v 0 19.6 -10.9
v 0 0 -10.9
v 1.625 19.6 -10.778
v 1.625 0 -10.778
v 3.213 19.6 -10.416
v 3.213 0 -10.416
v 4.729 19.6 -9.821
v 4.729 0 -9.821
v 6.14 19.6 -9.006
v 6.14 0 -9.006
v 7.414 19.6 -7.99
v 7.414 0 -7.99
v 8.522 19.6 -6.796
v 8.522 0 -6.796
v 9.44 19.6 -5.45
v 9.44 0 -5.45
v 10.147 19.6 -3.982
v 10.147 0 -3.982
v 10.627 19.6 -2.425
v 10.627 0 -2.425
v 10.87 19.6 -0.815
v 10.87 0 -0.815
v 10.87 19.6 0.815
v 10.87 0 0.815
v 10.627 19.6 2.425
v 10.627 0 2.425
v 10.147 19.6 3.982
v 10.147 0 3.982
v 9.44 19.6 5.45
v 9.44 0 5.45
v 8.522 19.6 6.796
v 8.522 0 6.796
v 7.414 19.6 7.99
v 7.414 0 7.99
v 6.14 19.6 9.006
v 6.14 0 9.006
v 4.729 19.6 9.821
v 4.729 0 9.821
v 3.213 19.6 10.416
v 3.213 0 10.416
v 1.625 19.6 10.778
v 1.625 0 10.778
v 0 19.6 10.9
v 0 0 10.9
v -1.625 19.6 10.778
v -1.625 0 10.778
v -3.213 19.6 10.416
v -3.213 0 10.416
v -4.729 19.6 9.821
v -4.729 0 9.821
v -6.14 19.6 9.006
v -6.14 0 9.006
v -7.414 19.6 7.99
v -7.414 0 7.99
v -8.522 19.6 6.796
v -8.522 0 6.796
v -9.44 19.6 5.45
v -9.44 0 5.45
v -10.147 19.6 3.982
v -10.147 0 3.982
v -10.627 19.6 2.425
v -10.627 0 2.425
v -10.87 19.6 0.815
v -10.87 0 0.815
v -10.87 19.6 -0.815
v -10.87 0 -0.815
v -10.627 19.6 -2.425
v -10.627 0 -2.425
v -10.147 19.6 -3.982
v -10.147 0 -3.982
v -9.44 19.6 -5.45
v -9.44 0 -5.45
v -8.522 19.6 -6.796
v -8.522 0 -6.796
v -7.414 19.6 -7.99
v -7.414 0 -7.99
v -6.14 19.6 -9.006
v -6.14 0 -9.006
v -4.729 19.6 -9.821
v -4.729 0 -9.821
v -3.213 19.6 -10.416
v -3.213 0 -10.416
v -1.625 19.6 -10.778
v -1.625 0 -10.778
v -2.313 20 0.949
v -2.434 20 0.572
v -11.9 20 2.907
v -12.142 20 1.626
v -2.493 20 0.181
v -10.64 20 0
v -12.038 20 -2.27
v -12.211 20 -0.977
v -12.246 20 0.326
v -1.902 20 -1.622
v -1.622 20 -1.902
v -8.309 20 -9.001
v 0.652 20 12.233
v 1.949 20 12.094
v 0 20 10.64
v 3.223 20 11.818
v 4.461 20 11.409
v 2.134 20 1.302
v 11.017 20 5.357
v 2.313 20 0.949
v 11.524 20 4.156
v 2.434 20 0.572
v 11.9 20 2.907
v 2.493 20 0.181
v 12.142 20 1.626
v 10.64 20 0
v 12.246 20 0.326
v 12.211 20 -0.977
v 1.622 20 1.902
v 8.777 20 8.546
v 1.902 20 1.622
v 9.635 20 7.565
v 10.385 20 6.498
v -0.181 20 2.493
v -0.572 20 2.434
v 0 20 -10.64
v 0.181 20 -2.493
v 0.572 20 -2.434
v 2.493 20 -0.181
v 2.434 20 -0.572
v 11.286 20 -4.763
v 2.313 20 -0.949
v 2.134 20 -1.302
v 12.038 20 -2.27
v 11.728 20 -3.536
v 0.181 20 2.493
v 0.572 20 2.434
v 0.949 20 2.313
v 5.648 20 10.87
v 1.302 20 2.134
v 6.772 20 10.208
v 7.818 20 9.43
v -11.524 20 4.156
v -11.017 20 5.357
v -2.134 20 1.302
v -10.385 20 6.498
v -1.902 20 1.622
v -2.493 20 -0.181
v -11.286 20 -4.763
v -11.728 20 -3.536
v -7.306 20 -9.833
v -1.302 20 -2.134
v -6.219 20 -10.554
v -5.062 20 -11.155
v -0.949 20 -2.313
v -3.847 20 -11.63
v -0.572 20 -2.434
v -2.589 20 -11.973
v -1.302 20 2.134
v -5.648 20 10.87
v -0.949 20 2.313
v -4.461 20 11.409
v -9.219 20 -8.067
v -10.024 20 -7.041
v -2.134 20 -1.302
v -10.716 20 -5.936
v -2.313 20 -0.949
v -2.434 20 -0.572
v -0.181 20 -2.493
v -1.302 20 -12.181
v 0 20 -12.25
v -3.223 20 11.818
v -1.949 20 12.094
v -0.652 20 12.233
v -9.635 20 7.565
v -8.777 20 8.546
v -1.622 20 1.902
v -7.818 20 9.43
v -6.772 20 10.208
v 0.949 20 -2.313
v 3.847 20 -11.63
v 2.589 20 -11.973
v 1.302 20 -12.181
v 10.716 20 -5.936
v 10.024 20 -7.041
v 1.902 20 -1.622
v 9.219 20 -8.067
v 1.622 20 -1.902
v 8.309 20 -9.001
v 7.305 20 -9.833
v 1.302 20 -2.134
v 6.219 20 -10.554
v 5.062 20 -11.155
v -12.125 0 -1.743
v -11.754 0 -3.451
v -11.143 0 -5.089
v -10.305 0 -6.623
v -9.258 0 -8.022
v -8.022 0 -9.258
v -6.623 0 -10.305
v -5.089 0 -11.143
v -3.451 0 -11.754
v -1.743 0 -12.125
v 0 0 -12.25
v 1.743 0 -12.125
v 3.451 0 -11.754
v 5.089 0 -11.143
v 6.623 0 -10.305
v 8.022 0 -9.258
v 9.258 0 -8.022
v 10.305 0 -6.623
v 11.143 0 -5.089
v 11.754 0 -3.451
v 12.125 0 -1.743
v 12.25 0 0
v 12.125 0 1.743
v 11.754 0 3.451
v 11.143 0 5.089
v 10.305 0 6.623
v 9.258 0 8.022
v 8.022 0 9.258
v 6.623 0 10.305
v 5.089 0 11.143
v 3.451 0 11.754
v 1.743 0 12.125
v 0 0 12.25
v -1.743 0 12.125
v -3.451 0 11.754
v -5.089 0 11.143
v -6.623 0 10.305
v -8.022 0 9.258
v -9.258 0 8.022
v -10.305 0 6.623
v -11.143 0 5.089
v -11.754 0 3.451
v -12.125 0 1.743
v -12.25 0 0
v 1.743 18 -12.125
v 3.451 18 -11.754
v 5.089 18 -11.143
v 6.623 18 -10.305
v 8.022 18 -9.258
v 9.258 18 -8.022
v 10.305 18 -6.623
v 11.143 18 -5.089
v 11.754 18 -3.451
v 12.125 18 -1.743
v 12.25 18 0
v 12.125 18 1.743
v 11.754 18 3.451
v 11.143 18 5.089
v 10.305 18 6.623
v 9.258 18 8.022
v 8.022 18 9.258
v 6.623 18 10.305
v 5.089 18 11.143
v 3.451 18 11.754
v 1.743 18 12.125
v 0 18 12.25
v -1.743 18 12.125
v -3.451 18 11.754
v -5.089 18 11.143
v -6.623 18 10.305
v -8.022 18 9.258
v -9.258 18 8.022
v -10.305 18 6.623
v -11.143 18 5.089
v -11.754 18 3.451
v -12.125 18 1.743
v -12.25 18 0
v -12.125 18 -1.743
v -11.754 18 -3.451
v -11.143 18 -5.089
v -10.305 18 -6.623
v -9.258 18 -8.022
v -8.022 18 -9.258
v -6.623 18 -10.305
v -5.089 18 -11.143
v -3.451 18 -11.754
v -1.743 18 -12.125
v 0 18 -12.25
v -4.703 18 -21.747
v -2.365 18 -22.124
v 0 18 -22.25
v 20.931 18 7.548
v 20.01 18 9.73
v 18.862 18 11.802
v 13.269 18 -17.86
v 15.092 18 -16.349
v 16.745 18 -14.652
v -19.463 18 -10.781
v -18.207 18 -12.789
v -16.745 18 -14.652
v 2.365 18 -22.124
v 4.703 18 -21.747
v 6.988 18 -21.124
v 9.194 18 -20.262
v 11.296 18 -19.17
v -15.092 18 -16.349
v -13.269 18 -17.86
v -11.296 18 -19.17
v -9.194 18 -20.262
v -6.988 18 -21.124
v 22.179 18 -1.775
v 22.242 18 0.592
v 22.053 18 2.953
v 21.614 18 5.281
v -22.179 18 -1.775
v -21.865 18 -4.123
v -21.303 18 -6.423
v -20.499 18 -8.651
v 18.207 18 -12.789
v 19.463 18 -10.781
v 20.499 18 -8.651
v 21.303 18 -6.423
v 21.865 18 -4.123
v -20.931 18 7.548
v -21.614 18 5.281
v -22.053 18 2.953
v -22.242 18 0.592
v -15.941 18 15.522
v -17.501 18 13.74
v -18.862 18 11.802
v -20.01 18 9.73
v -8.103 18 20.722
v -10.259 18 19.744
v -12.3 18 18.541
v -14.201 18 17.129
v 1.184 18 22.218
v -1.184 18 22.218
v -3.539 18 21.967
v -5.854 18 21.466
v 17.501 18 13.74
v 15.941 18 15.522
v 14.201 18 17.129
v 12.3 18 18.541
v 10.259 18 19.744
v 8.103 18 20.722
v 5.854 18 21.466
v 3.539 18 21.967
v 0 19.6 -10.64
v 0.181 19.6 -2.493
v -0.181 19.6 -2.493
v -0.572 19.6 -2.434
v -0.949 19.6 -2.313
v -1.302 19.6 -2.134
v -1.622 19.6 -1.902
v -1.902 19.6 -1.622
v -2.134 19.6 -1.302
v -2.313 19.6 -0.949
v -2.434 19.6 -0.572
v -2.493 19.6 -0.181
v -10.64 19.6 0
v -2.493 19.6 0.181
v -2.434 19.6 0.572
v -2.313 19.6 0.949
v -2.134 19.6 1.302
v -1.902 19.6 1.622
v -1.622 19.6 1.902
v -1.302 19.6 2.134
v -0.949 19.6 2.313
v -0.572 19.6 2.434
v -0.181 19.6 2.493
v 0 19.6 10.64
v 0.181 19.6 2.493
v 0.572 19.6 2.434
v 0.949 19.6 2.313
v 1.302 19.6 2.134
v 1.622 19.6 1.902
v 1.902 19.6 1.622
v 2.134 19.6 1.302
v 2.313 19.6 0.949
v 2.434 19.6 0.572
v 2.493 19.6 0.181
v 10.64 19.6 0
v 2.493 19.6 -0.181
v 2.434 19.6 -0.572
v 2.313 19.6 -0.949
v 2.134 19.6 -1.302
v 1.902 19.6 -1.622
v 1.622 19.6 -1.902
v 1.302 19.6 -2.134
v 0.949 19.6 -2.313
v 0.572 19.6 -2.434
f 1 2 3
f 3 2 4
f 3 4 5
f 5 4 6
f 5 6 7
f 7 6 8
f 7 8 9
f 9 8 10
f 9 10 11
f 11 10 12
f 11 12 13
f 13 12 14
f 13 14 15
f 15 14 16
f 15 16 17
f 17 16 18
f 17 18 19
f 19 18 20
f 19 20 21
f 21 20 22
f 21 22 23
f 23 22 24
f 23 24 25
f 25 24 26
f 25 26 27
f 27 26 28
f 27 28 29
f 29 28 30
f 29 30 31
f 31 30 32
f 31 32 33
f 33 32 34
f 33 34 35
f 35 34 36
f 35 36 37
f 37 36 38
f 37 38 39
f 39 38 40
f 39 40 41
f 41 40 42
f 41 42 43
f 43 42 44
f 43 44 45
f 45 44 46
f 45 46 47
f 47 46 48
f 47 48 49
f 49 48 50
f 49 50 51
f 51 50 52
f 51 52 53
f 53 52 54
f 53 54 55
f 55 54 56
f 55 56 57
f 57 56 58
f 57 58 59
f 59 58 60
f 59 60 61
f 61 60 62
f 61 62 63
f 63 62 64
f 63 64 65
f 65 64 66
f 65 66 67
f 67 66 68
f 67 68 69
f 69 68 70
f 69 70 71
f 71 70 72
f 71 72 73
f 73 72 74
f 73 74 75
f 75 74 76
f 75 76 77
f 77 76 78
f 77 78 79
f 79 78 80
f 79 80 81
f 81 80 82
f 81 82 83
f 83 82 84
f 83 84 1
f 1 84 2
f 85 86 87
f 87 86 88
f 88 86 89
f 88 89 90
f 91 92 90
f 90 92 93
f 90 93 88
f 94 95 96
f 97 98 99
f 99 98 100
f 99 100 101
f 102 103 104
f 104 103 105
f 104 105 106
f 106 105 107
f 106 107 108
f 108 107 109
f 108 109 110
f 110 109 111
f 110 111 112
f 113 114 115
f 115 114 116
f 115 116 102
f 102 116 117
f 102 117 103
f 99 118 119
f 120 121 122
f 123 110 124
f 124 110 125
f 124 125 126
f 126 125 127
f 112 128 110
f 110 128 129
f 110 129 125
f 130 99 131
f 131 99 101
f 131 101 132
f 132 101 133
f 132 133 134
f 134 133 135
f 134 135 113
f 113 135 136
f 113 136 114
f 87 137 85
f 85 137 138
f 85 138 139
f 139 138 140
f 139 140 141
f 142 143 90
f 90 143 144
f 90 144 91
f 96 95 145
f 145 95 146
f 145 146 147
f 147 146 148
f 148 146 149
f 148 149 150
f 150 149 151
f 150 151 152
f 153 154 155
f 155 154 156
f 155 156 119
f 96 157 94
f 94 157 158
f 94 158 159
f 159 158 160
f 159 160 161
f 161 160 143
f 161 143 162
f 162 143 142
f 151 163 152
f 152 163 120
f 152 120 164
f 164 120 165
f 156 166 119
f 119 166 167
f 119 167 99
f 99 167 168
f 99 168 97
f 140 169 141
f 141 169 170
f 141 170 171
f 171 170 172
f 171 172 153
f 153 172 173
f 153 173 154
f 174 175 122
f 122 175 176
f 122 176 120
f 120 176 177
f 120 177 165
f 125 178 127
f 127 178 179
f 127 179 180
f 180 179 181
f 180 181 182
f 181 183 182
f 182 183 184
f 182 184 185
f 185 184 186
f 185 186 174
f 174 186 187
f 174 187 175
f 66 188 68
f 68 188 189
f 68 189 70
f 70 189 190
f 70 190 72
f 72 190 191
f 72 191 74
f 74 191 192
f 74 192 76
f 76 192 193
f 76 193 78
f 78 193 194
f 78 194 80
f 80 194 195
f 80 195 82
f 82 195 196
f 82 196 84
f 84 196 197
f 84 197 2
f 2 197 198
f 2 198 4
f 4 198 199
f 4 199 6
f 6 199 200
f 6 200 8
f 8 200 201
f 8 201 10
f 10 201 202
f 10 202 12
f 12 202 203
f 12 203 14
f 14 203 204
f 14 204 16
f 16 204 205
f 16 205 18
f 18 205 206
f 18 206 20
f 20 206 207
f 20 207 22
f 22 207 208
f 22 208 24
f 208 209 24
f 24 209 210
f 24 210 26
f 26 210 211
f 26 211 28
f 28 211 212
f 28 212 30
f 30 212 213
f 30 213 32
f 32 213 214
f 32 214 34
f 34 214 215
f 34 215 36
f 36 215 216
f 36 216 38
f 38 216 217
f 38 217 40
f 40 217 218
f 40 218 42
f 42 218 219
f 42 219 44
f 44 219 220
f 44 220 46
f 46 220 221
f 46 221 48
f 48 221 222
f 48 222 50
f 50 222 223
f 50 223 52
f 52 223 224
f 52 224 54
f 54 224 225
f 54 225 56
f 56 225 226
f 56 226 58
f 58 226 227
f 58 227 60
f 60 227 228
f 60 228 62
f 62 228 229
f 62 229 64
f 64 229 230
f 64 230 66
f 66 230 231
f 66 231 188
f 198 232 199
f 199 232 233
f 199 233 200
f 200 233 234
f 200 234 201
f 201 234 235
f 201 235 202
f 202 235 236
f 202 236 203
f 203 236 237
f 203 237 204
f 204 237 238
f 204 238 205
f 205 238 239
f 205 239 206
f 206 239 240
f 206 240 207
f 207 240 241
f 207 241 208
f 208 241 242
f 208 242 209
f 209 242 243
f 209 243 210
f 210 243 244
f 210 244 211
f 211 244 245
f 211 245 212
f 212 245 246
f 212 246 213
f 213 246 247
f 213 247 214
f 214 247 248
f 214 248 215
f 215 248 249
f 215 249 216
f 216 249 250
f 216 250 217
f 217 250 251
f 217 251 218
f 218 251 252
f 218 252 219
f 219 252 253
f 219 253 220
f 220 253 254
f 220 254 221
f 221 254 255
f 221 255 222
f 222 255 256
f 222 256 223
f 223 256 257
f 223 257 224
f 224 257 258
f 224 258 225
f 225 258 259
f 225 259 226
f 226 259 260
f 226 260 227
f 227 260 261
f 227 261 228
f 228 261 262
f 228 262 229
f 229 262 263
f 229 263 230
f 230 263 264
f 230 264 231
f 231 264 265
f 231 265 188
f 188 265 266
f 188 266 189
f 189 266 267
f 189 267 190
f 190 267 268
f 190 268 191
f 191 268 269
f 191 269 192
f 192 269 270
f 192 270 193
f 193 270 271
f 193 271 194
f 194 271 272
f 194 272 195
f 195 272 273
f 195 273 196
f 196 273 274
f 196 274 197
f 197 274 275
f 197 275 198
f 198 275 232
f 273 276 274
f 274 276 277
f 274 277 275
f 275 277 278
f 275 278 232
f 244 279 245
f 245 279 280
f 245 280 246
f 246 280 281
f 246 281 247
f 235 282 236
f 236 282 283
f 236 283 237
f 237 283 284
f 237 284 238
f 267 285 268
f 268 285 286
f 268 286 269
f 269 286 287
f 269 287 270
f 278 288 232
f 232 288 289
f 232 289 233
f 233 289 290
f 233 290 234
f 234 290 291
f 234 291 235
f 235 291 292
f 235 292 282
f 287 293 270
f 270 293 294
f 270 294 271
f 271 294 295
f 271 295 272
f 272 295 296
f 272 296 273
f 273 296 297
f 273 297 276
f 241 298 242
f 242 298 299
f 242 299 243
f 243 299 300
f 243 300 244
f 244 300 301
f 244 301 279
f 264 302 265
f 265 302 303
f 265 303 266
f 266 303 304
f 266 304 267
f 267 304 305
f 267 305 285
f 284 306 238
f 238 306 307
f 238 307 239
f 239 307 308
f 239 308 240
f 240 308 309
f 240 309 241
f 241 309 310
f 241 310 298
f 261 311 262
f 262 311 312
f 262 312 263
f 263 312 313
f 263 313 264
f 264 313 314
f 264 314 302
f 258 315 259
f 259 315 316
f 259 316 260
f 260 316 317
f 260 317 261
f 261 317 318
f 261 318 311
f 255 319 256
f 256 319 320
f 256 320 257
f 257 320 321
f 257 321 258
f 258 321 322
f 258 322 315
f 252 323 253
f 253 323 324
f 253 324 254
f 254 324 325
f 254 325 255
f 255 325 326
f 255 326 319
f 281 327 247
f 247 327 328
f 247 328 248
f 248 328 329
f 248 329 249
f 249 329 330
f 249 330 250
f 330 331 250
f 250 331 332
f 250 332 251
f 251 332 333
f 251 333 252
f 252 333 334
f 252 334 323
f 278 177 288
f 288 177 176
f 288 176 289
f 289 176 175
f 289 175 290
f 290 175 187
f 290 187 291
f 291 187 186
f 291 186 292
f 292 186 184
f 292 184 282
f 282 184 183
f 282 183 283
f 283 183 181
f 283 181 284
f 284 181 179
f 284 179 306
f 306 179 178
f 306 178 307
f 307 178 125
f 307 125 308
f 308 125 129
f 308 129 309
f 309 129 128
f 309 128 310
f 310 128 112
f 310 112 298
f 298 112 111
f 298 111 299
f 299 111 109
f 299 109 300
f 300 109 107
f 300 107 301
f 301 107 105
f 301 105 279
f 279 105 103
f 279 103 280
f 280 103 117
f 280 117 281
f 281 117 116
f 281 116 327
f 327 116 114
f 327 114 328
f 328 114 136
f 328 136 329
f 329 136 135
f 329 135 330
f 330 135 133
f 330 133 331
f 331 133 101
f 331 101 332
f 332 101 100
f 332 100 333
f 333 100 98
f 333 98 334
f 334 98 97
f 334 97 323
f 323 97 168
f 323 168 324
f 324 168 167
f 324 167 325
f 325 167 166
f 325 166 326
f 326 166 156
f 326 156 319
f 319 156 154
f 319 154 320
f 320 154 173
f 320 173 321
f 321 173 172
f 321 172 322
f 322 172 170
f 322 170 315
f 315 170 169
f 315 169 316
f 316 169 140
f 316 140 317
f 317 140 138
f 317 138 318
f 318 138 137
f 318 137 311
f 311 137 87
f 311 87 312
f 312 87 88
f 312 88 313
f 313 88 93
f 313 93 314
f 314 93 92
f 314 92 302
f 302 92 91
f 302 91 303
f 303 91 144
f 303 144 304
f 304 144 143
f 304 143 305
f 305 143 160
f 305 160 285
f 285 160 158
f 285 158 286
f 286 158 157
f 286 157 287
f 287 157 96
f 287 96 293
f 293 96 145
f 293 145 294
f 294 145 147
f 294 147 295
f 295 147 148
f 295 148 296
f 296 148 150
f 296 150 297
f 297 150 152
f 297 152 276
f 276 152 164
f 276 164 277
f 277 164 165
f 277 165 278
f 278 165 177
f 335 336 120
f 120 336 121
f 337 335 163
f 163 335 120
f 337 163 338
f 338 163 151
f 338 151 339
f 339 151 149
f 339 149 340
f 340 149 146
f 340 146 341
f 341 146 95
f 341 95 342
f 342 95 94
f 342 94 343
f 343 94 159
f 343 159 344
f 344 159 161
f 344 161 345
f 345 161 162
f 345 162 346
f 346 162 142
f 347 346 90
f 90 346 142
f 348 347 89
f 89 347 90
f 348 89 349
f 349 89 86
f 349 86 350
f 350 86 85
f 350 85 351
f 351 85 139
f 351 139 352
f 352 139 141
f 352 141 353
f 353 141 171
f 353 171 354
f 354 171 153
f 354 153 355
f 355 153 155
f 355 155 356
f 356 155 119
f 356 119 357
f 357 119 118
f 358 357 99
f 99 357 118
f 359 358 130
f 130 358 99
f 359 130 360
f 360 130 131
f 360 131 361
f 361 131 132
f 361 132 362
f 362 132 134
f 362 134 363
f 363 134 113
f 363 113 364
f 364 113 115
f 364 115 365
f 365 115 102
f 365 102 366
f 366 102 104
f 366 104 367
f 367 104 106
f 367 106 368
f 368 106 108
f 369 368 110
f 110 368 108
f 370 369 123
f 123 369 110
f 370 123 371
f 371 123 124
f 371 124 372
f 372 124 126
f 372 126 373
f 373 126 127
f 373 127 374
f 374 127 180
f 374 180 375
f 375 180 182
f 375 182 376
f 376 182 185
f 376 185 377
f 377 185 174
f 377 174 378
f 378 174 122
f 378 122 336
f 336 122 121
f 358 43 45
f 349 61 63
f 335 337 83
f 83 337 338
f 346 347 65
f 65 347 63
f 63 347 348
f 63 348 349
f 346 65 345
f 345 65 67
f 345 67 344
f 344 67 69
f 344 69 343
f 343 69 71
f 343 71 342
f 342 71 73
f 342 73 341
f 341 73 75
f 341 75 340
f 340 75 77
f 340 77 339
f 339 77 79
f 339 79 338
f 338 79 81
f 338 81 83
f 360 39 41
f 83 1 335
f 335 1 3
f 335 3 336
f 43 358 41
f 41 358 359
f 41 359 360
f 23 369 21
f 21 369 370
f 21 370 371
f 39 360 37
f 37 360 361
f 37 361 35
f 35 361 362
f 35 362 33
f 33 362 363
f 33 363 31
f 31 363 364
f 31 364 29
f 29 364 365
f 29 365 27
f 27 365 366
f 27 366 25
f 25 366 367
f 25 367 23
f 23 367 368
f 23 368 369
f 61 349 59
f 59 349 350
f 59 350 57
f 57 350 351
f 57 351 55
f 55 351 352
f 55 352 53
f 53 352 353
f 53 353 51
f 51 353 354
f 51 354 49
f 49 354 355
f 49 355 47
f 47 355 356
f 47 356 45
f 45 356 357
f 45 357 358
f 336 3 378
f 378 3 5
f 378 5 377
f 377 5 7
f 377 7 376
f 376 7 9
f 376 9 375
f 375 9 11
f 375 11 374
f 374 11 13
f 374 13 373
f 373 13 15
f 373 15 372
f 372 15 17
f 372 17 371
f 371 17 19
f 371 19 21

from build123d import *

# Parameters (mm, degrees)
SALIENTE_EXTRUIR2_DEPTH = 0.4


with BuildPart() as part:
    # Croquis1 → Revolución1 (revolve)
    with BuildSketch(Plane.XY):
        Polygon((-10.9, 20), (-10.9, 0), (-12.25, 0), (-12.25, 18), (-22.25, 18), (-12.25, 20), align=None)
    revolve(axis=Axis((0, 0, 0), (0, 1, 0)))

    # Croquis3 → Saliente-Extruir2 (add)
    with BuildSketch(Plane(origin=(0, 20, 0), x_dir=(1, 0, 0), z_dir=(0, 1, 0))):
        with BuildLine():
            ThreePointArc((10.9, 0), (7.707463915, -7.707463915), (0, -10.9))
            ThreePointArc((0, -10.9), (-7.707463915, -7.707463915), (-10.9, 0))
            ThreePointArc((-10.9, 0), (-7.707463915, 7.707463915), (0, 10.9))
            ThreePointArc((0, 10.9), (7.707463915, 7.707463915), (10.9, 0))
        make_face()
        with BuildLine():
            Line((0.181294315, -2.493417809), (0, -10.639817501))
            Line((0, -10.639817501), (-0.181294315, -2.493417809))
            ThreePointArc((-0.181294315, -2.493417809), (-1.767766953, -1.767766953), (-2.493417809, -0.181294315))
            Line((-2.493417809, -0.181294315), (-10.639817501, 0))
            Line((-10.639817501, 0), (-2.493417809, 0.181294315))
            ThreePointArc((-2.493417809, 0.181294315), (-1.767766953, 1.767766953), (-0.181294315, 2.493417809))
            Line((-0.181294315, 2.493417809), (0, 10.639817501))
            Line((0, 10.639817501), (0.181294315, 2.493417809))
            ThreePointArc((0.181294315, 2.493417809), (1.767766953, 1.767766953), (2.493417809, 0.181294315))
            Line((2.493417809, 0.181294315), (10.639817501, 0))
            Line((10.639817501, 0), (2.493417809, -0.181294315))
            ThreePointArc((2.493417809, -0.181294315), (1.767766953, -1.767766953), (0.181294315, -2.493417809))
        make_face(mode=Mode.SUBTRACT)
    extrude(amount=-SALIENTE_EXTRUIR2_DEPTH)


solid = part.part
